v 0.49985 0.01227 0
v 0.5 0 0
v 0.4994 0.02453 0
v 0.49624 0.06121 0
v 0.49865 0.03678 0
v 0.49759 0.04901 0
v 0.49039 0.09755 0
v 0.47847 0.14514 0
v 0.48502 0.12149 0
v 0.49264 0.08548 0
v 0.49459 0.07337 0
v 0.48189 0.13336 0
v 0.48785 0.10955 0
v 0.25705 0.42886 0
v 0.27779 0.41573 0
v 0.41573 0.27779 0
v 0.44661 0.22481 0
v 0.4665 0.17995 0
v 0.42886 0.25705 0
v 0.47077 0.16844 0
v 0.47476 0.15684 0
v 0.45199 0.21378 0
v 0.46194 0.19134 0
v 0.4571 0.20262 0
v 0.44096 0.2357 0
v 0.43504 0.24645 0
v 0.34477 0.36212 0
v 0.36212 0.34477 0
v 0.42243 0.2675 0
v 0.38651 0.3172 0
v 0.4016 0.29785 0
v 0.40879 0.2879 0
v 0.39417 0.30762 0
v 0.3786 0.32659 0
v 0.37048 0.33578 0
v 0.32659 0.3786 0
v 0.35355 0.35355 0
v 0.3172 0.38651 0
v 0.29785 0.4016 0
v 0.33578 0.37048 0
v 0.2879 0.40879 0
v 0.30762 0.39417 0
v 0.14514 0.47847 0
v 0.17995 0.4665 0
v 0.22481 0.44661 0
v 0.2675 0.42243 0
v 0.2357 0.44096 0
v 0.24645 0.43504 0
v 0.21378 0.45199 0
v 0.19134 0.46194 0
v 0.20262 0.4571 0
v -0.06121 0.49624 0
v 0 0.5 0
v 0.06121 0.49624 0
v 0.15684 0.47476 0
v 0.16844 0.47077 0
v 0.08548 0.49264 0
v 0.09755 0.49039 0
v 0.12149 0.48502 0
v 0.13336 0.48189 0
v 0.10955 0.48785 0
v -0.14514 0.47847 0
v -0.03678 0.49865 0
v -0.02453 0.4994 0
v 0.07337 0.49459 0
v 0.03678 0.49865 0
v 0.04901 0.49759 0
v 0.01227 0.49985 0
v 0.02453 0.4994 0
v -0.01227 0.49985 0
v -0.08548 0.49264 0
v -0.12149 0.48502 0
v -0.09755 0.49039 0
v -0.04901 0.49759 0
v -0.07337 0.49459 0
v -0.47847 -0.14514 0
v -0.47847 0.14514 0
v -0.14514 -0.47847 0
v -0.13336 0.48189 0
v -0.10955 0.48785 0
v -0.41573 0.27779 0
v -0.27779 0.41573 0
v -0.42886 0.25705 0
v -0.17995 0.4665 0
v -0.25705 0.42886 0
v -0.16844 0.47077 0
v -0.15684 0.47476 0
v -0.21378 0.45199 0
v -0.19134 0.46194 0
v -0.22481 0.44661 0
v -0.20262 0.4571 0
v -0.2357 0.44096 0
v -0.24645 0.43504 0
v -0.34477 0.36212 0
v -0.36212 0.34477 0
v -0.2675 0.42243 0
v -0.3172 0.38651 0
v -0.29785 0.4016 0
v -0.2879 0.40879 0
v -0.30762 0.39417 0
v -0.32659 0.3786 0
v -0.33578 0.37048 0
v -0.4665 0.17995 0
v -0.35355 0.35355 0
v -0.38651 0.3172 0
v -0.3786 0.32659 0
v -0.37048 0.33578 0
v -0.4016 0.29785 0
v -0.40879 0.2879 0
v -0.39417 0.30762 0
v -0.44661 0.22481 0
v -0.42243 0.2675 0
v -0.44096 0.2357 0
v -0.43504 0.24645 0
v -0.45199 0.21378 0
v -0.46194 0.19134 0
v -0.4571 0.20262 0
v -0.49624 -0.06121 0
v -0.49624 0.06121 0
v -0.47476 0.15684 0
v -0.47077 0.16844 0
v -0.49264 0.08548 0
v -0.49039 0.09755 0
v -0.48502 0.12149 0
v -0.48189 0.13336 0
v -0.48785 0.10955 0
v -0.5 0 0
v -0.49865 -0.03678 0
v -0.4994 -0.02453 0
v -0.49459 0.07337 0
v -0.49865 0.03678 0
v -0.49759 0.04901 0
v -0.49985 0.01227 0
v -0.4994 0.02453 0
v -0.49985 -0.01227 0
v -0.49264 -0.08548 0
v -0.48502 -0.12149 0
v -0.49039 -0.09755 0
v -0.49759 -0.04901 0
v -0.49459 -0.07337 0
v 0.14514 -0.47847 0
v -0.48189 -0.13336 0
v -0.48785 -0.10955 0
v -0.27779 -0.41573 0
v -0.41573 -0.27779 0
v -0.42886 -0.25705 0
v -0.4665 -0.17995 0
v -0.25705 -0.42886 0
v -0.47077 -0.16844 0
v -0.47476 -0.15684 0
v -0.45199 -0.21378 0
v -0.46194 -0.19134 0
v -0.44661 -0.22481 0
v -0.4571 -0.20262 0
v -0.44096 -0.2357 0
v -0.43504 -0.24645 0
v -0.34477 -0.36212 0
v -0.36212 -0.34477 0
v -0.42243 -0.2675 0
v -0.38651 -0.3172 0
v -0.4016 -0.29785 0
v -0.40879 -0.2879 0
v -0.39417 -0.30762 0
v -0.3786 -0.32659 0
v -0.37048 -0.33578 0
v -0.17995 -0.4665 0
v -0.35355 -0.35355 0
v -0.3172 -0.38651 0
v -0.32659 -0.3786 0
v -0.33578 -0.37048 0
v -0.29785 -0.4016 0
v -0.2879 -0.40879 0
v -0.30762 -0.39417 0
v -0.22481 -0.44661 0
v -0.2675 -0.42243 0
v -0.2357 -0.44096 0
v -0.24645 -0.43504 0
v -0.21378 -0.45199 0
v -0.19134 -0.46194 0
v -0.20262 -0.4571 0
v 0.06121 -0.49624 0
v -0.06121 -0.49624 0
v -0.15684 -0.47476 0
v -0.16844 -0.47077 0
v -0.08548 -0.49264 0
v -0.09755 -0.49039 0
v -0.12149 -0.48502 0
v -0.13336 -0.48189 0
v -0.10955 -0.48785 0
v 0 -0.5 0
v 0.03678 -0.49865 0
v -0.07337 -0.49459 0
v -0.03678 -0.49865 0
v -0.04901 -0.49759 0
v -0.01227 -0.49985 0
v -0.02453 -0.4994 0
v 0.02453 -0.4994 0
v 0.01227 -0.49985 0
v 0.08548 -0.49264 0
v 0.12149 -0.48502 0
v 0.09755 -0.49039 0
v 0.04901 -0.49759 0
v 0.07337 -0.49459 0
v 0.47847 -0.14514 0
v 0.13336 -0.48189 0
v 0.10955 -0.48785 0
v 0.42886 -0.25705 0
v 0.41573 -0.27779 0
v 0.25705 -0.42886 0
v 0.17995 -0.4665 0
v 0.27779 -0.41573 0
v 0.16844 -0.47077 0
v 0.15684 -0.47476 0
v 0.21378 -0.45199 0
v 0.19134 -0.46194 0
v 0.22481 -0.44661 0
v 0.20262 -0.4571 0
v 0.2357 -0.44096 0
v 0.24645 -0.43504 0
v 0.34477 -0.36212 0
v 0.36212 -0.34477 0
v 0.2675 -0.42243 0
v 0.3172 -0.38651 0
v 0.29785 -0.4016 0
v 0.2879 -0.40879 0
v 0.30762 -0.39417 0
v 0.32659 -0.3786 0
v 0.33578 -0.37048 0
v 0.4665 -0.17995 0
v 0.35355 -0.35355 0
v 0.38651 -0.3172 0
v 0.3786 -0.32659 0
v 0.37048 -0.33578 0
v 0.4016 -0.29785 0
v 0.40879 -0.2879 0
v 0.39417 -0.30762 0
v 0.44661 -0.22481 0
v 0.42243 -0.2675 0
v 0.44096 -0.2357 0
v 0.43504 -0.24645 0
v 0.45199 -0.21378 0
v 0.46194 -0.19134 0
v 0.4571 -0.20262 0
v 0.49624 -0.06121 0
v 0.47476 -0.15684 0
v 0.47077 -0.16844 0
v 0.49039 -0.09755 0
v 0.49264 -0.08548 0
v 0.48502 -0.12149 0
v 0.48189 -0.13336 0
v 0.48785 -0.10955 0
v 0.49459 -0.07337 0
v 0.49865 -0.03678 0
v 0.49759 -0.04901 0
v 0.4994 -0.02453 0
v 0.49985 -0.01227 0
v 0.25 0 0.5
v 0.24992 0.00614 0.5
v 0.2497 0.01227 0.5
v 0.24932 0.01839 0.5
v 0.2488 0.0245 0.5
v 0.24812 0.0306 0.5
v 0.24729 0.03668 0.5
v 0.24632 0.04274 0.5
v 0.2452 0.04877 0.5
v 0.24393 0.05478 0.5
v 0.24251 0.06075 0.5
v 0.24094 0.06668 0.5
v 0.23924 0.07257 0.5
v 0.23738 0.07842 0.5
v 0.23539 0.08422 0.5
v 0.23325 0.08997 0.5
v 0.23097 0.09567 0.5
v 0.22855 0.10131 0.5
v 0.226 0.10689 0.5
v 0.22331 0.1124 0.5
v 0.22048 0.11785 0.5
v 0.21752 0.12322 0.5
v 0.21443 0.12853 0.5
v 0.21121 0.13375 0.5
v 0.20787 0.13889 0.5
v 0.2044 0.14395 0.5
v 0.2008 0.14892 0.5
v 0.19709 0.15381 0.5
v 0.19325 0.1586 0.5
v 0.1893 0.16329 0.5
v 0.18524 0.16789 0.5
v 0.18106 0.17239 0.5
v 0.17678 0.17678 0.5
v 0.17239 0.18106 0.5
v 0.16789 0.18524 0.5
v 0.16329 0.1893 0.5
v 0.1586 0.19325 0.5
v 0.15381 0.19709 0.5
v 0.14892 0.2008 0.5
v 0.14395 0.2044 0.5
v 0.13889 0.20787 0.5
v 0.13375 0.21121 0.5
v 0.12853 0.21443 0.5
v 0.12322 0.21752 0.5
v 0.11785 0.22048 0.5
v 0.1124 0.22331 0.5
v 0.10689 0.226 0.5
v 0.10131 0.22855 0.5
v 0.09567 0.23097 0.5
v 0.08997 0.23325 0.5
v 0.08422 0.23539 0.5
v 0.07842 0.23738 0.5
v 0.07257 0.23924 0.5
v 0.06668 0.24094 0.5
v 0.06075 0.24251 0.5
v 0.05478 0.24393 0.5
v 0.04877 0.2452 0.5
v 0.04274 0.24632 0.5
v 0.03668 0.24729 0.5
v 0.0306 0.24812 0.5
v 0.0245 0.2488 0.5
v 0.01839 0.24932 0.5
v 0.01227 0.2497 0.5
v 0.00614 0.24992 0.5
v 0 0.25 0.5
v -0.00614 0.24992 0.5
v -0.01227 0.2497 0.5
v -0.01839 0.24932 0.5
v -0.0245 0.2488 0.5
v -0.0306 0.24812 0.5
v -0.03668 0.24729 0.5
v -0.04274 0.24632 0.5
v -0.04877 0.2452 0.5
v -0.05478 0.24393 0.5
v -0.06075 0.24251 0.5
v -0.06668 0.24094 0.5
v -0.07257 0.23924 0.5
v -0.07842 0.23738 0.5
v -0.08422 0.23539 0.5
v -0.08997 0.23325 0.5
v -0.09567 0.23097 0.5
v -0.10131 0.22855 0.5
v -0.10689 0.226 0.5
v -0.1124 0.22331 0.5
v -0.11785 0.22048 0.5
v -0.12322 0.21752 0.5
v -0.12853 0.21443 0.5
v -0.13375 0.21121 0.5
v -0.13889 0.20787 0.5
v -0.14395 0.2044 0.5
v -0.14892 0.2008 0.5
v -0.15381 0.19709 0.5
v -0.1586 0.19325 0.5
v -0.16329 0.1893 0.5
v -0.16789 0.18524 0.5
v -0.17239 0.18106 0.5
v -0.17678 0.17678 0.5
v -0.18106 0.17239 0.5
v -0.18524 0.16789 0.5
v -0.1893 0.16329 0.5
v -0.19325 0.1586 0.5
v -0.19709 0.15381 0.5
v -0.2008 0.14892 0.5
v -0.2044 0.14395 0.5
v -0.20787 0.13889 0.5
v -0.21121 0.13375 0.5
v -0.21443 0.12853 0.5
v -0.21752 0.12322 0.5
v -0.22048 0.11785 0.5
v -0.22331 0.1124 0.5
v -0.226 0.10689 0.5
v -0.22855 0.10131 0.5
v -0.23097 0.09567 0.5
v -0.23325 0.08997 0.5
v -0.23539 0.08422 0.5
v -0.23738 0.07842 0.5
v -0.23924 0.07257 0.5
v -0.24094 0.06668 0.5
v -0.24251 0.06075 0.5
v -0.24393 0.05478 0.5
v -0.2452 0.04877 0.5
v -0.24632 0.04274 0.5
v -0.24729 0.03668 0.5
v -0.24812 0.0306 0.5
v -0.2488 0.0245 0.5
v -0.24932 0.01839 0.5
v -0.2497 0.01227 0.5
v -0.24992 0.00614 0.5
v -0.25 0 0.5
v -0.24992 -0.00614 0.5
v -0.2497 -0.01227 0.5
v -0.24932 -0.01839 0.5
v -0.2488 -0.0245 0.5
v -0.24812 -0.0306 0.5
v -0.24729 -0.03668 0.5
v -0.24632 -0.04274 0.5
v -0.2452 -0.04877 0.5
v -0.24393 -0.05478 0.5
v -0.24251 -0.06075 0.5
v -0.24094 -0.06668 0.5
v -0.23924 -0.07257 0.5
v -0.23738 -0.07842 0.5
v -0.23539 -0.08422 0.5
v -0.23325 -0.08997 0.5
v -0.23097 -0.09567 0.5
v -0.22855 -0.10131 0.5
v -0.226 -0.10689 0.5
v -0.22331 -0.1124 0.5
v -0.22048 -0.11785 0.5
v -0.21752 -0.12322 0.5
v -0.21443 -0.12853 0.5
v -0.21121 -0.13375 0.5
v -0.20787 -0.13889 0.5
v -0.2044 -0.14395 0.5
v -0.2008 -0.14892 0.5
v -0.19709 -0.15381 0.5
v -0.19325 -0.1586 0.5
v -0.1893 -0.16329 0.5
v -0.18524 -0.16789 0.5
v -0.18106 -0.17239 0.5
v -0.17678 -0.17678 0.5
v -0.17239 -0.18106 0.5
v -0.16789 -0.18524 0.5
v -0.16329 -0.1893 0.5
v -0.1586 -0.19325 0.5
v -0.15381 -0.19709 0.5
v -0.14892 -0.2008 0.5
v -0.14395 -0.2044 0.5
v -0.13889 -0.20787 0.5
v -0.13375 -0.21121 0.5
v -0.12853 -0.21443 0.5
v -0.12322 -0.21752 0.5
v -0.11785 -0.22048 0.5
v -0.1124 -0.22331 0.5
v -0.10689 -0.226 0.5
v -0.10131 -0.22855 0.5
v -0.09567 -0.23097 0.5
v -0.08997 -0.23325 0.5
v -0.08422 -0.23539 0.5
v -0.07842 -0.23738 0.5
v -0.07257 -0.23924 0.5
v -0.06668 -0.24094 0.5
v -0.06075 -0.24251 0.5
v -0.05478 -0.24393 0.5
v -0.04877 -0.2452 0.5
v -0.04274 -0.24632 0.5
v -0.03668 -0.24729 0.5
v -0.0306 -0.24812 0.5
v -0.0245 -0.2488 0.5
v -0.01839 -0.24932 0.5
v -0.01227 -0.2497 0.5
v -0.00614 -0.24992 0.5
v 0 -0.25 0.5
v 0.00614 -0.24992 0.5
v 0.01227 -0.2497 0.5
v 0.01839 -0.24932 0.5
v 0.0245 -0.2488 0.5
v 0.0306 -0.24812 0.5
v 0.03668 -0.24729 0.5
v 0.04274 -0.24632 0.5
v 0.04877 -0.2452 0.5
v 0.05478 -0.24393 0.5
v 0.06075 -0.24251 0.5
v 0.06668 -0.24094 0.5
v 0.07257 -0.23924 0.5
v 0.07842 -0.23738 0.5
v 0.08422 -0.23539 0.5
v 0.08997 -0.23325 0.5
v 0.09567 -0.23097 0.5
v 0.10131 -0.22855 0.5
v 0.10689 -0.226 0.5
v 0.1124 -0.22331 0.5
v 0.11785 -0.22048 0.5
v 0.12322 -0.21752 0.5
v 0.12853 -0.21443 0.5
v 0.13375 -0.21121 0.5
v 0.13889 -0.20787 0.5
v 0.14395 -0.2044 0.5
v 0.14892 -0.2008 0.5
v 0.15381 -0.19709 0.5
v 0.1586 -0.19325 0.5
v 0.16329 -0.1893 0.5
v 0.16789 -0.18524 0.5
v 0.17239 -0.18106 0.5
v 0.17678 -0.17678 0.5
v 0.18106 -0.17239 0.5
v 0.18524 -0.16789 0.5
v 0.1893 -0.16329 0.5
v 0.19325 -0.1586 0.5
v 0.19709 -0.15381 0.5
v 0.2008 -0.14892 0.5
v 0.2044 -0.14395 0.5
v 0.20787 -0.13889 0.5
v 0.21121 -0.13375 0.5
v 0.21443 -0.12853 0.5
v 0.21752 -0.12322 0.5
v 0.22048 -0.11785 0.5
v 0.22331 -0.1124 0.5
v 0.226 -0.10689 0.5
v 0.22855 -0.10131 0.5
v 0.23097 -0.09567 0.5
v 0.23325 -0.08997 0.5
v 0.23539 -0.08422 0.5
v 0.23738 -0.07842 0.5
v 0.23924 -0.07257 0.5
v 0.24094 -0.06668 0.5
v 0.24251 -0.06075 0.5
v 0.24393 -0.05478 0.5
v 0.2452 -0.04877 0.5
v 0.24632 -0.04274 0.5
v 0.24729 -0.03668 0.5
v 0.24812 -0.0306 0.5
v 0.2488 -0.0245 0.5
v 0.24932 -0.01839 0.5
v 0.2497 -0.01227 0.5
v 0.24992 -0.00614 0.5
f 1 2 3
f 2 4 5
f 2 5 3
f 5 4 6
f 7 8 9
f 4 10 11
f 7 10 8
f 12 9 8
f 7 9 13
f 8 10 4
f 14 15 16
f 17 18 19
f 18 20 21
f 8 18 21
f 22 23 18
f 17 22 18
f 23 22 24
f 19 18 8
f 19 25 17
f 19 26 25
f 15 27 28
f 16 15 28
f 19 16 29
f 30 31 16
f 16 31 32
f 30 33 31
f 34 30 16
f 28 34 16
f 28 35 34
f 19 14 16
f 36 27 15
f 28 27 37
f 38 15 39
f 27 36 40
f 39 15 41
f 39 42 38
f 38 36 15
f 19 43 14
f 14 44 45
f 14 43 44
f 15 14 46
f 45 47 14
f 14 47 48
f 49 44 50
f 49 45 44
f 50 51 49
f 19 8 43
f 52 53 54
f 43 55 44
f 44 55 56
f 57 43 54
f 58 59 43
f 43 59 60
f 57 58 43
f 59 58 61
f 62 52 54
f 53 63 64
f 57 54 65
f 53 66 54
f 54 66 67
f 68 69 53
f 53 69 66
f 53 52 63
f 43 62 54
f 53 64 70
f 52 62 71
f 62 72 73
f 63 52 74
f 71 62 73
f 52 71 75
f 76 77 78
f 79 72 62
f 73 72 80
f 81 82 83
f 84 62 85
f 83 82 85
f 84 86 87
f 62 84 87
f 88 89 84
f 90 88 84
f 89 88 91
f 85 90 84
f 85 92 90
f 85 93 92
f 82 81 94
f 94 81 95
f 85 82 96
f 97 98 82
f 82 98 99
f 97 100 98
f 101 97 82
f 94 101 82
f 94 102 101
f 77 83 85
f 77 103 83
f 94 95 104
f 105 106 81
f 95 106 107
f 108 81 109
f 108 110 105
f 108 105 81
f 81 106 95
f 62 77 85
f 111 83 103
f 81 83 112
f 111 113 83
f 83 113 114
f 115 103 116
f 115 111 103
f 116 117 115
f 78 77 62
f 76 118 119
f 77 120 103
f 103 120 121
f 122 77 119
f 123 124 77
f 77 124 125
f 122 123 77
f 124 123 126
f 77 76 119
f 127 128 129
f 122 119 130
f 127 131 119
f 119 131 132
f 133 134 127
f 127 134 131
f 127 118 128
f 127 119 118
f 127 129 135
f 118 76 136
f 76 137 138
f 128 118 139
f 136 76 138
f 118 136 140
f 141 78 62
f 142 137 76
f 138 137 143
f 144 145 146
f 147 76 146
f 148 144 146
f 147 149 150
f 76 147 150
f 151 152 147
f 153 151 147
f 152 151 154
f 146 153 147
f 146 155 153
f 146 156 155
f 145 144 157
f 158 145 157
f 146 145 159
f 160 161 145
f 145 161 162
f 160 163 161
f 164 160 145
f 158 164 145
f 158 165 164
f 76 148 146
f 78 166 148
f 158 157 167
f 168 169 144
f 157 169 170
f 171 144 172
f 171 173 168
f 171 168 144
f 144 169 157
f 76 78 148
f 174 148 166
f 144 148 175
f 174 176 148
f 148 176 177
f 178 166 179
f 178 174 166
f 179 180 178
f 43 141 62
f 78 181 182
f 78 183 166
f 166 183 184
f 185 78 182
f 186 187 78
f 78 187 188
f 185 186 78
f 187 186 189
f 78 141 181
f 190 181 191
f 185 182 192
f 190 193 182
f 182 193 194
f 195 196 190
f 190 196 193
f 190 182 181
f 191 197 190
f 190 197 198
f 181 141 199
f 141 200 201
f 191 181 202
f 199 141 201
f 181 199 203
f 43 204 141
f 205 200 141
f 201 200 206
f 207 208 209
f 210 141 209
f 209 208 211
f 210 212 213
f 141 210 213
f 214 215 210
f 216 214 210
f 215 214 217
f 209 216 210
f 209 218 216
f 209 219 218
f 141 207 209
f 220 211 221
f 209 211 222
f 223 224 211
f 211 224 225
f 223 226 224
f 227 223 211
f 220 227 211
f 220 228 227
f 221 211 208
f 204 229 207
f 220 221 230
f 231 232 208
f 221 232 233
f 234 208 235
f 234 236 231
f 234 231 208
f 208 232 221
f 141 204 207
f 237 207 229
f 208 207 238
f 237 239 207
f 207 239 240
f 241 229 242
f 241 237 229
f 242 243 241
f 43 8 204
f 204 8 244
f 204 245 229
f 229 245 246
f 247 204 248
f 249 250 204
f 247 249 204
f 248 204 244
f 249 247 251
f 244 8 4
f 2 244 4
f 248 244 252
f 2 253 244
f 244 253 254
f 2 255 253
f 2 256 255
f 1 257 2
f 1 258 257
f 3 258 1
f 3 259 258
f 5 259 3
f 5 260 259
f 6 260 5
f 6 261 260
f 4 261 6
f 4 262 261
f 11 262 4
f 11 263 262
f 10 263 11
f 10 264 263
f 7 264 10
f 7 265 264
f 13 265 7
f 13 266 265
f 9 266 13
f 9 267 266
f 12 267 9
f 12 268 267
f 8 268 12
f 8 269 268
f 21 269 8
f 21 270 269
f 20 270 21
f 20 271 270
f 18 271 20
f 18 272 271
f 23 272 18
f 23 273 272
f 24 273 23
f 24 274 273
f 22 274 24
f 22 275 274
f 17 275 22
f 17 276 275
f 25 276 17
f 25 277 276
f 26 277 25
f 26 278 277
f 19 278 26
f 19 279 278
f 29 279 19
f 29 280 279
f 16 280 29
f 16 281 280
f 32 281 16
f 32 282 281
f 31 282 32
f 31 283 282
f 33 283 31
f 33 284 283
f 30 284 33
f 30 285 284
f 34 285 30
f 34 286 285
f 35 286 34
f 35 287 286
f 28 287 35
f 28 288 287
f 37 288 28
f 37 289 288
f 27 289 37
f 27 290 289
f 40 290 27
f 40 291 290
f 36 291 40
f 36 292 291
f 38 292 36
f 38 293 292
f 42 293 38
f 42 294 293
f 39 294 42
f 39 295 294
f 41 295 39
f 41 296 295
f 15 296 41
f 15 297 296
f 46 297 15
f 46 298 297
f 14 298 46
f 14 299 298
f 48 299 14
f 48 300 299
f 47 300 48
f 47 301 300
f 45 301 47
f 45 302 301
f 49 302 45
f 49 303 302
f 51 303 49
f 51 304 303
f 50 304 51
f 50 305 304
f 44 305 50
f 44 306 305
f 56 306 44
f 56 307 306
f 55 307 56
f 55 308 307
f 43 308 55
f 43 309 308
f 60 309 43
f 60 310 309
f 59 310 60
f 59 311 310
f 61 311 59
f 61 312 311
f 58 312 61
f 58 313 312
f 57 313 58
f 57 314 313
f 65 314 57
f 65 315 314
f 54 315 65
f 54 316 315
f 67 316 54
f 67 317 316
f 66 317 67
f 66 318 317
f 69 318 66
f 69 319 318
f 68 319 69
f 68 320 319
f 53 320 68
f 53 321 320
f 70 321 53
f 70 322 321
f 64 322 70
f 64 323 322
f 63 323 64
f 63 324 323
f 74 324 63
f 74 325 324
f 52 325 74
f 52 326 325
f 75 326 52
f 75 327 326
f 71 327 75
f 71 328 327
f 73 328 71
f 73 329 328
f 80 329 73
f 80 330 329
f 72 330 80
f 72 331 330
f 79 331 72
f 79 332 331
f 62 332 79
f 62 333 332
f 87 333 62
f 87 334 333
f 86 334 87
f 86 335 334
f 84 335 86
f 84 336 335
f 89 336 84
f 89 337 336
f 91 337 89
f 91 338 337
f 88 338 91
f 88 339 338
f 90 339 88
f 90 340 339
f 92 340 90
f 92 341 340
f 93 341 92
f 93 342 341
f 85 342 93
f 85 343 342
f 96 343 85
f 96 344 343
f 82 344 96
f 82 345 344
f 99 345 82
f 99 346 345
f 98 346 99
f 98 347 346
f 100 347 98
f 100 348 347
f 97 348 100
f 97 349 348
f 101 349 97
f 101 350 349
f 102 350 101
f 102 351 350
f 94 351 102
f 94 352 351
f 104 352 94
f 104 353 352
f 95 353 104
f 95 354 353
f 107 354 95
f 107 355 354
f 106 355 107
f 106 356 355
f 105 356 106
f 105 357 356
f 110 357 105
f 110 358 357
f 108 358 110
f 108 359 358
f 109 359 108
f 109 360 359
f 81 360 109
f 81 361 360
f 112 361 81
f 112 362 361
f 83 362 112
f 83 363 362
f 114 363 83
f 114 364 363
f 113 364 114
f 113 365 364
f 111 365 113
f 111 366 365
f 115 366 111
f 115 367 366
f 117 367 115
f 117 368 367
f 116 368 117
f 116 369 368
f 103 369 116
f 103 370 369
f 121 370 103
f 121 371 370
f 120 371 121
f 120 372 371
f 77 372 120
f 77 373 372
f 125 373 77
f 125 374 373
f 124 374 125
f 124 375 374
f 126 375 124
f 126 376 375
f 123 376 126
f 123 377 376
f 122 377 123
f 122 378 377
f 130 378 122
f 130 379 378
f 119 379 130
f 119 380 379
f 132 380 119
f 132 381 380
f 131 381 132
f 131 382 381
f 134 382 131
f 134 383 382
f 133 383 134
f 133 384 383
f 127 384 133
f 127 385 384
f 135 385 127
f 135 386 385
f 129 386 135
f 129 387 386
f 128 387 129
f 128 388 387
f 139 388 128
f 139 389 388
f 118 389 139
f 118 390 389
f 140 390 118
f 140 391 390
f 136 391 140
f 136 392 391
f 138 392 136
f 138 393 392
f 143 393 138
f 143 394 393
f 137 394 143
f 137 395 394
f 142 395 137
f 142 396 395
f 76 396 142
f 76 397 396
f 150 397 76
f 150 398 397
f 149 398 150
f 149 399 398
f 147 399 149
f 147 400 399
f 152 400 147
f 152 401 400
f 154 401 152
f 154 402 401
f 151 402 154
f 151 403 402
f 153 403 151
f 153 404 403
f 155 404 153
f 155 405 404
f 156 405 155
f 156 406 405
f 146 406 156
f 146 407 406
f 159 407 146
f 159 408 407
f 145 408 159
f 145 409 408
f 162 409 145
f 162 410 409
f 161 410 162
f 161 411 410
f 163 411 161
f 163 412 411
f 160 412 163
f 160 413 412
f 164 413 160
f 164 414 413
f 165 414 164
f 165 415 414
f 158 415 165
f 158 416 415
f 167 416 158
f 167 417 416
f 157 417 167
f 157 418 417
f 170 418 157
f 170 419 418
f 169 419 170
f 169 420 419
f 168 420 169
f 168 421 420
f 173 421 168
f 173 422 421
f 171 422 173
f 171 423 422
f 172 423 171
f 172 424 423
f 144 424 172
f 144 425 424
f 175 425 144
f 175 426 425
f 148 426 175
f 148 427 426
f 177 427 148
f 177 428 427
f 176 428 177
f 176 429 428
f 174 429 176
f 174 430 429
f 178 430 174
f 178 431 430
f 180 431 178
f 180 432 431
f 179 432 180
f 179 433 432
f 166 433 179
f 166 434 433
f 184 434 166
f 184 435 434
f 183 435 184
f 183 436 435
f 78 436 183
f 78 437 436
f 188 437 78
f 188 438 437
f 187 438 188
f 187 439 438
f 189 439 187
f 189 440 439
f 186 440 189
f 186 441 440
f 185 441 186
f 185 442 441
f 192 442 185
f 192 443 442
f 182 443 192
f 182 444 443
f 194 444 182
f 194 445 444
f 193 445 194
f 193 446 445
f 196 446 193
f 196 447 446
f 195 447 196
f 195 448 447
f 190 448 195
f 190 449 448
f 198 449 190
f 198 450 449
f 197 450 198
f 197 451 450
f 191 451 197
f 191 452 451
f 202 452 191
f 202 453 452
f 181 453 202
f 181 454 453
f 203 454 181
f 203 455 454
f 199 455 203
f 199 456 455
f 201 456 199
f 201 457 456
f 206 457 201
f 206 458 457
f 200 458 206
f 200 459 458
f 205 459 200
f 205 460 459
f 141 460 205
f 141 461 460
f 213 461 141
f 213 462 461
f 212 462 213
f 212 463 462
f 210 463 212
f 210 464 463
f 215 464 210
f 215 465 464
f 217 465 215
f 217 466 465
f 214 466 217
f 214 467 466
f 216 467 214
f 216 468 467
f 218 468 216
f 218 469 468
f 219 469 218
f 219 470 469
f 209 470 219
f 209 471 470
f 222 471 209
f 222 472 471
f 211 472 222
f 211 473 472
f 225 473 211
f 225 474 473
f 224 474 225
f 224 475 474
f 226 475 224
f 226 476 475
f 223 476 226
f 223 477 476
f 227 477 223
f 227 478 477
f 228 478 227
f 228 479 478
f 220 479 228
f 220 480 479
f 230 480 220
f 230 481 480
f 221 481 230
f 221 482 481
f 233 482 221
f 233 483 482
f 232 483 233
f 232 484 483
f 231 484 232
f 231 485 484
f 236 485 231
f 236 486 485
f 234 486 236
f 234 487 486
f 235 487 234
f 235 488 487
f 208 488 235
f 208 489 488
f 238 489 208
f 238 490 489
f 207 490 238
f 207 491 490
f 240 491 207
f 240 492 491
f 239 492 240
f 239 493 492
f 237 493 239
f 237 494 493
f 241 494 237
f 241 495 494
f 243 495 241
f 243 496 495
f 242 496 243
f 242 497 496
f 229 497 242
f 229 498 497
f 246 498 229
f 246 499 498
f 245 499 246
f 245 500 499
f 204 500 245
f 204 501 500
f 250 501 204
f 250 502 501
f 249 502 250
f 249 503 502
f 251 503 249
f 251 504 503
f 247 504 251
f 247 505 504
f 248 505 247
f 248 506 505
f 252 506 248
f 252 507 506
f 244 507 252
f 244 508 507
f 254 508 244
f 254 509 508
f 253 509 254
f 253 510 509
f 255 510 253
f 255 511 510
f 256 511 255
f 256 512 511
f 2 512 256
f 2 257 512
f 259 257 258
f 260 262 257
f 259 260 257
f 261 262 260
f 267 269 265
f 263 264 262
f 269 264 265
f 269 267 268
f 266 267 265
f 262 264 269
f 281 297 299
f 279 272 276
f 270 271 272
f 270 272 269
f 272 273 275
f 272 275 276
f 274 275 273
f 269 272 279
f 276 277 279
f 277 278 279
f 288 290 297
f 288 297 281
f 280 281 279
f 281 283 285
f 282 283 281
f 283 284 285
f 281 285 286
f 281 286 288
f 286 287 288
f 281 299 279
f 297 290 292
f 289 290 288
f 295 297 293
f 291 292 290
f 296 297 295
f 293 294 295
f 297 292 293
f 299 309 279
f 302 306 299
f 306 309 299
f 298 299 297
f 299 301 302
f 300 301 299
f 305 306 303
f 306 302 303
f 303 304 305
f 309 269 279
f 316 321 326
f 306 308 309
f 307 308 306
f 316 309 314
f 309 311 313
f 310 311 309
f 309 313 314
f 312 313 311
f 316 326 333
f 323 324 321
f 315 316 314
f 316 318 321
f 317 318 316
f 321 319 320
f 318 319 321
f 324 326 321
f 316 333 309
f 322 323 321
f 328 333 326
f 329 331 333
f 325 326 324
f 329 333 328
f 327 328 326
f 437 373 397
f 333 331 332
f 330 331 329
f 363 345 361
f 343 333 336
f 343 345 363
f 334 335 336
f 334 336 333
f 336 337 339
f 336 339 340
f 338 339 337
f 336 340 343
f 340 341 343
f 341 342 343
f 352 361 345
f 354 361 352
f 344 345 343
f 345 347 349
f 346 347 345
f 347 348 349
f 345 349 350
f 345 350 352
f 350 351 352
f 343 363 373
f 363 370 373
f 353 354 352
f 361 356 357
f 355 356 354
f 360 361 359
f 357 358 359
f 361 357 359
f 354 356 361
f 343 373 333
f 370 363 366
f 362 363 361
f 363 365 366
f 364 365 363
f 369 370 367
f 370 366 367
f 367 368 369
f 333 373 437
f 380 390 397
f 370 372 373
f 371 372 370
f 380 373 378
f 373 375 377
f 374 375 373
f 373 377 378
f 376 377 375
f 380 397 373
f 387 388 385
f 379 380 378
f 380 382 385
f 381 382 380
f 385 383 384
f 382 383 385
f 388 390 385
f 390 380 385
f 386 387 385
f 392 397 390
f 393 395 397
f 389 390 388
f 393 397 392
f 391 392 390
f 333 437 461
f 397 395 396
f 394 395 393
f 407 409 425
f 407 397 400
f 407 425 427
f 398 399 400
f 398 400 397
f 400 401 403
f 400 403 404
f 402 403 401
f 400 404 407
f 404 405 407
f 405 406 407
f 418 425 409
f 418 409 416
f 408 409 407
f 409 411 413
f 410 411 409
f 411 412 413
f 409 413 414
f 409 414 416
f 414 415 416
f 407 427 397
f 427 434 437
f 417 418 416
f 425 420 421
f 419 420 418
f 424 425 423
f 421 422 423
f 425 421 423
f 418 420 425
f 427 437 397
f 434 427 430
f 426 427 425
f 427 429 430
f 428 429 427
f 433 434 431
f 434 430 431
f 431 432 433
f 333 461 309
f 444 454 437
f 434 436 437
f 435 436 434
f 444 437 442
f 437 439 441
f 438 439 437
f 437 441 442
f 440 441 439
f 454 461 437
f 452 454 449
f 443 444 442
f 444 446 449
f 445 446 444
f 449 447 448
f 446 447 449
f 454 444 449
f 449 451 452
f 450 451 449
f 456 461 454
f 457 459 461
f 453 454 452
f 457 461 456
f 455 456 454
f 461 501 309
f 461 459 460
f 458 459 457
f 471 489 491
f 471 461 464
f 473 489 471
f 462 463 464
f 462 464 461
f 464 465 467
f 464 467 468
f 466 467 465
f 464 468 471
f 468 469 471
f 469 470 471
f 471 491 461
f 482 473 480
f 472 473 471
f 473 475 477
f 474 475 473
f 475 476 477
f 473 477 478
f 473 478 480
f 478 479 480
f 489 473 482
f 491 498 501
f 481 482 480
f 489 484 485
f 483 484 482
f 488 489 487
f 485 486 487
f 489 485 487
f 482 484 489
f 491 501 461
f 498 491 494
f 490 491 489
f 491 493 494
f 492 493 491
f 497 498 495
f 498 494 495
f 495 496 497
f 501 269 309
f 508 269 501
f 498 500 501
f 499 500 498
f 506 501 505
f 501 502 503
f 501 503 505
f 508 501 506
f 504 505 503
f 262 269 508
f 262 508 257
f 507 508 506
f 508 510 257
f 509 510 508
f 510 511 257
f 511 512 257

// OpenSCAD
// Frustum (Conical) for Stacks of Shapes
// by Slashee the Cow
$fn = $preview ? 1024 : 256;

color("CornflowerBlue")
linear_extrude(0.5, false, scale = 0.5)
circle(d=1);
